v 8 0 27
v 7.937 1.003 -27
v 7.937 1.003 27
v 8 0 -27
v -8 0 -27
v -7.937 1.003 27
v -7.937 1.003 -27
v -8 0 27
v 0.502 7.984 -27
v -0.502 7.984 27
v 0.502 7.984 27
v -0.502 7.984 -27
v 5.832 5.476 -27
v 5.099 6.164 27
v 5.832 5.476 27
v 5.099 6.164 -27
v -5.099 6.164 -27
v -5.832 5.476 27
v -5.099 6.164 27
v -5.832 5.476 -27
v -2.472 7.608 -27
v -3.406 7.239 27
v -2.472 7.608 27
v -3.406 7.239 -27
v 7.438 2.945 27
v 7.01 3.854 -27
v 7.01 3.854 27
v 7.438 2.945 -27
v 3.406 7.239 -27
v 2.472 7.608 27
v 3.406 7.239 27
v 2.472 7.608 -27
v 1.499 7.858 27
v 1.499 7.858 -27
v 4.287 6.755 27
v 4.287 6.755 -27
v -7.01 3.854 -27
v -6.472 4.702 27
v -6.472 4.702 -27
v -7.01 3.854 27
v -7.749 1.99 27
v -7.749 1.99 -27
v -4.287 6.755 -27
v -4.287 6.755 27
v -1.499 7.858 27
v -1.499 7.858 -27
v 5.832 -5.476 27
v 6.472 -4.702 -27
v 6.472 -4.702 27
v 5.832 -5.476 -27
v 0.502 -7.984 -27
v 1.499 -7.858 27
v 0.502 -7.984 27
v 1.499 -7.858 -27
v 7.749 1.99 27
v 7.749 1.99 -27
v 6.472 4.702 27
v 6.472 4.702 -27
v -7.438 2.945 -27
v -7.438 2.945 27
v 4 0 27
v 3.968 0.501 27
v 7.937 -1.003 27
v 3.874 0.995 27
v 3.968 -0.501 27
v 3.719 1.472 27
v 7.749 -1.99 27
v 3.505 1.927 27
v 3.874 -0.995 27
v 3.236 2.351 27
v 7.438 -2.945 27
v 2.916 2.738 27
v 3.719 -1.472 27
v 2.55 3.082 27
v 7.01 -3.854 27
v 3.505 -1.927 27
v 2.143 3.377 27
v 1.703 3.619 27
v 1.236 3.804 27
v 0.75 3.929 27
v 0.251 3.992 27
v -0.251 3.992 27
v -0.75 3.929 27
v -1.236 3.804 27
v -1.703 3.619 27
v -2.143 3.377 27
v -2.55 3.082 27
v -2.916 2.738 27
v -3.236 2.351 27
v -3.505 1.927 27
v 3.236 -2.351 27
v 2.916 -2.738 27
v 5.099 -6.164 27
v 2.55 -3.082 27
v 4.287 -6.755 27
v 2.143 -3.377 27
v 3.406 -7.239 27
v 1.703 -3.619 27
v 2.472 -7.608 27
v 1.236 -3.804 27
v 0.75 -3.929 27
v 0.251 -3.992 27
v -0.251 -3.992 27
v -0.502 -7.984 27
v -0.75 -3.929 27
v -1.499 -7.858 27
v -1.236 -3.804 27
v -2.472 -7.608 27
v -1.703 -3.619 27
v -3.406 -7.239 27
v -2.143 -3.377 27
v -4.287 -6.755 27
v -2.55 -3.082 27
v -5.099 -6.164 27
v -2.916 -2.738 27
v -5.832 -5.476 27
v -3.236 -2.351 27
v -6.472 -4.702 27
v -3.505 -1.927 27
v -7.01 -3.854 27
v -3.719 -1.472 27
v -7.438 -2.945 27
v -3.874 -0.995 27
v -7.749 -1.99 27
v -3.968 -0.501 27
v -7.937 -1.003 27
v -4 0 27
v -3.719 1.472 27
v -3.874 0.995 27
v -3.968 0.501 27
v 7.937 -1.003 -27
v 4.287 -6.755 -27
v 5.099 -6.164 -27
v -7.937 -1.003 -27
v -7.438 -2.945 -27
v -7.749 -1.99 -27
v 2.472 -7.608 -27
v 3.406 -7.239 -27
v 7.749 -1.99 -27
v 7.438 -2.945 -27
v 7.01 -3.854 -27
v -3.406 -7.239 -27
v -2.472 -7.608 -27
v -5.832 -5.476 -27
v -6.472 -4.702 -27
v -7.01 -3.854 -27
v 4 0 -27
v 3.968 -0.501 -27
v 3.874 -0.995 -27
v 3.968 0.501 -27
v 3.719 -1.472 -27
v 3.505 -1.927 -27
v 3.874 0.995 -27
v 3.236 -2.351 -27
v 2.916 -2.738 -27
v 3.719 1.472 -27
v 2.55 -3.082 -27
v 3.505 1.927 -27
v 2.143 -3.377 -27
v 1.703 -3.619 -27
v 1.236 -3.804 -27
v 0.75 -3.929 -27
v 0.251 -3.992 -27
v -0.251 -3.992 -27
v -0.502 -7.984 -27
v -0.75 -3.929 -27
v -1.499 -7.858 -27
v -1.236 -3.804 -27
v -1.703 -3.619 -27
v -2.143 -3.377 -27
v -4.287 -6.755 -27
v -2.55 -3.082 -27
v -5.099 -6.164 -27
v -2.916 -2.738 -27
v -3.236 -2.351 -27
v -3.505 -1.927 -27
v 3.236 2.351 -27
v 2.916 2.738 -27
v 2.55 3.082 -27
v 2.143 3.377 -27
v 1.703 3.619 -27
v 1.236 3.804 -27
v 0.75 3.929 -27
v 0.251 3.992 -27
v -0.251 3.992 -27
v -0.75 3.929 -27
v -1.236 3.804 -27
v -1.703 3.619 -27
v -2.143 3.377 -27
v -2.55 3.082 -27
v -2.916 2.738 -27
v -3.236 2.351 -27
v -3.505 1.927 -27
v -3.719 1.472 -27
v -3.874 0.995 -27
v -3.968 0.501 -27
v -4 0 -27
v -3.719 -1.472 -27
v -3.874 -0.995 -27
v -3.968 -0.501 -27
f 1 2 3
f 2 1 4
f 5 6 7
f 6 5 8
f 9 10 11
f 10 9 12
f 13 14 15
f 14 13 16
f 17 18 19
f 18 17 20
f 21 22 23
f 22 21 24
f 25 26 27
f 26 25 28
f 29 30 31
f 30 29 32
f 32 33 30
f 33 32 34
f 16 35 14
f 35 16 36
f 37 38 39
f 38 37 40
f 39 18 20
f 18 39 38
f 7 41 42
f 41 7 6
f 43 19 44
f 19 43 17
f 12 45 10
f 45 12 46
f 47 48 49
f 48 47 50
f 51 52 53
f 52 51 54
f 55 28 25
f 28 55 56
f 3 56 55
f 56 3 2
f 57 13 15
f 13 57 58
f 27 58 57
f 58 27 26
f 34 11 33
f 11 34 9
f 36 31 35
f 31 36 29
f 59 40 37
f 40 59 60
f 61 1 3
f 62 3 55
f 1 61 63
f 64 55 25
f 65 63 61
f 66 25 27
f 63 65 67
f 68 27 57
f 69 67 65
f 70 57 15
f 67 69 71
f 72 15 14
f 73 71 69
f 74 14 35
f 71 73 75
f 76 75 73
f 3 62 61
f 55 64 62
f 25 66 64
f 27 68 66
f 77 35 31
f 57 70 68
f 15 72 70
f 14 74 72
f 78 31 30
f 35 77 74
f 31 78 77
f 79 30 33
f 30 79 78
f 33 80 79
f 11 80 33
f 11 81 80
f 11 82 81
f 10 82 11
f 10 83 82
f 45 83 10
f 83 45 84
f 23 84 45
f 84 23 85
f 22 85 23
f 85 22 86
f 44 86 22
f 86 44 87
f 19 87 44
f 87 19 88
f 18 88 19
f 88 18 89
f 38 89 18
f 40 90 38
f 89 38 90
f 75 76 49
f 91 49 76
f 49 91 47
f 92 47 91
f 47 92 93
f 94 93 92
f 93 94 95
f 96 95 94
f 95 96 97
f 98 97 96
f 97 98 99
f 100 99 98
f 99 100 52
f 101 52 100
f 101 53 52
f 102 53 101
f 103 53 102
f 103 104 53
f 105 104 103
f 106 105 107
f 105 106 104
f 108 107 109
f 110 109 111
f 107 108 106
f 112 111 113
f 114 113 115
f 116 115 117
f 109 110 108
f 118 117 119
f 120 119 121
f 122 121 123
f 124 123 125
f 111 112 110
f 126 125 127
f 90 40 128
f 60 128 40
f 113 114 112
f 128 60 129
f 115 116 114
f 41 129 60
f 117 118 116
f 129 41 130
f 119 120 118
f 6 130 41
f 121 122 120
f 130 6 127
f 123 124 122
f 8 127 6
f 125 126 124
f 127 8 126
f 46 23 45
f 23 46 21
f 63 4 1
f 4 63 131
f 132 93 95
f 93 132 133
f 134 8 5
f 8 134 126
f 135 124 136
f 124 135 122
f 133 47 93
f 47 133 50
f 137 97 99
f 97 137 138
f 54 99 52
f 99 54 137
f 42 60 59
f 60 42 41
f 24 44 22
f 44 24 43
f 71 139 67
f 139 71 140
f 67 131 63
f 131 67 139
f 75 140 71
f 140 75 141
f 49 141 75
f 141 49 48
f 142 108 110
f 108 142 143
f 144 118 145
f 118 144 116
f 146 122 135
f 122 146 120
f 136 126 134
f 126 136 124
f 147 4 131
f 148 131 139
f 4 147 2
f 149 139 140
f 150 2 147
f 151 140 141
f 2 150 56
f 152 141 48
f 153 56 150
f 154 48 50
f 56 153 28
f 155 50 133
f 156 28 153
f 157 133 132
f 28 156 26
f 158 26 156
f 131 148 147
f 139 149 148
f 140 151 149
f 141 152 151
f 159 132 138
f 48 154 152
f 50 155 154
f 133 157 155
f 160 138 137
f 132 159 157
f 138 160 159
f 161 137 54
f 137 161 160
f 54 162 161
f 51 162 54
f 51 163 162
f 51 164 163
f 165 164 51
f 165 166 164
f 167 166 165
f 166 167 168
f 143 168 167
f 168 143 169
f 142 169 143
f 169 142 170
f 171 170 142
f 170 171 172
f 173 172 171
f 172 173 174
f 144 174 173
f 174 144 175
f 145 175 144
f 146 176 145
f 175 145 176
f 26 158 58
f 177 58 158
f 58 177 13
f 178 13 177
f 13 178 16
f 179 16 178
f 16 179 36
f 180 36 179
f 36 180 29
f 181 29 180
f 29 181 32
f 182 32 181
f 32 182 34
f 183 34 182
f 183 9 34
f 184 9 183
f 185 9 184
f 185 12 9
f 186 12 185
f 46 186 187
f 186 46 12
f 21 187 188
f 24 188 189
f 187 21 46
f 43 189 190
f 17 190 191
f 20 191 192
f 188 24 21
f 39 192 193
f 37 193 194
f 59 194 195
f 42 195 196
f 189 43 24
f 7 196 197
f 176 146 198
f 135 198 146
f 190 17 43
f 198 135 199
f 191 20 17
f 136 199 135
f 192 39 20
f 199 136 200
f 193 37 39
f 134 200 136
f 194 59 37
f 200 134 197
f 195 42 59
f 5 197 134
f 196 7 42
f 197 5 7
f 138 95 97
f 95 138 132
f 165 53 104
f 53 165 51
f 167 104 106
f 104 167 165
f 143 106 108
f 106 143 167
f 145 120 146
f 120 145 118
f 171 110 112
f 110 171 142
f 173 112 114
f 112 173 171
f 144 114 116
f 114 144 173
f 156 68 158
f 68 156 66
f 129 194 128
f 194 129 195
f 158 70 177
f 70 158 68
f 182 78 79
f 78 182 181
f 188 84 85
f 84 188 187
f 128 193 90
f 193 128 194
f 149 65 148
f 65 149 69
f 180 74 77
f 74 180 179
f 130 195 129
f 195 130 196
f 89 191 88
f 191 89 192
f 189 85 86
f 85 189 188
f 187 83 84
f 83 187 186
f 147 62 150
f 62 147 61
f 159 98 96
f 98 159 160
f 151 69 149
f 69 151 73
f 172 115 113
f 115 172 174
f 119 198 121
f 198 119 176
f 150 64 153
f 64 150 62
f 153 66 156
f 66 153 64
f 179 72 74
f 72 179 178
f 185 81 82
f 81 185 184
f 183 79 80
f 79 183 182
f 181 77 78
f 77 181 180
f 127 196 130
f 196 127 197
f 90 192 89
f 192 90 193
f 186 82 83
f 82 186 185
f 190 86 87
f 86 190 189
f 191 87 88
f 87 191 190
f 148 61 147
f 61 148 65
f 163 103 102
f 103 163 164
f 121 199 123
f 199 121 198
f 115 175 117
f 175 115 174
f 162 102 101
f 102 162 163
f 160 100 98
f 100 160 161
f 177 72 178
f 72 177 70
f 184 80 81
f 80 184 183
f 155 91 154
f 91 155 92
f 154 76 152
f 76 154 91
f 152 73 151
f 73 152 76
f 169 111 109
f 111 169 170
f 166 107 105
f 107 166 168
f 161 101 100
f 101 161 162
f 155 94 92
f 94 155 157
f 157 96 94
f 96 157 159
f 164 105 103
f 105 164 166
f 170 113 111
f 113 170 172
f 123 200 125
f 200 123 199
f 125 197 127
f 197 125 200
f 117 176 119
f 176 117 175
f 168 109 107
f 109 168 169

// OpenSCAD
$fn = 50;


difference() {
	union() {
		translate(v = [0, 0, -27.0000000000]) {
			cylinder(h = 54, r = 8.0000000000);
		}
	}
	union() {
		translate(v = [0, 0, -100.0000000000]) {
			cylinder(h = 200, r = 4.0000000000);
		}
	}
}
